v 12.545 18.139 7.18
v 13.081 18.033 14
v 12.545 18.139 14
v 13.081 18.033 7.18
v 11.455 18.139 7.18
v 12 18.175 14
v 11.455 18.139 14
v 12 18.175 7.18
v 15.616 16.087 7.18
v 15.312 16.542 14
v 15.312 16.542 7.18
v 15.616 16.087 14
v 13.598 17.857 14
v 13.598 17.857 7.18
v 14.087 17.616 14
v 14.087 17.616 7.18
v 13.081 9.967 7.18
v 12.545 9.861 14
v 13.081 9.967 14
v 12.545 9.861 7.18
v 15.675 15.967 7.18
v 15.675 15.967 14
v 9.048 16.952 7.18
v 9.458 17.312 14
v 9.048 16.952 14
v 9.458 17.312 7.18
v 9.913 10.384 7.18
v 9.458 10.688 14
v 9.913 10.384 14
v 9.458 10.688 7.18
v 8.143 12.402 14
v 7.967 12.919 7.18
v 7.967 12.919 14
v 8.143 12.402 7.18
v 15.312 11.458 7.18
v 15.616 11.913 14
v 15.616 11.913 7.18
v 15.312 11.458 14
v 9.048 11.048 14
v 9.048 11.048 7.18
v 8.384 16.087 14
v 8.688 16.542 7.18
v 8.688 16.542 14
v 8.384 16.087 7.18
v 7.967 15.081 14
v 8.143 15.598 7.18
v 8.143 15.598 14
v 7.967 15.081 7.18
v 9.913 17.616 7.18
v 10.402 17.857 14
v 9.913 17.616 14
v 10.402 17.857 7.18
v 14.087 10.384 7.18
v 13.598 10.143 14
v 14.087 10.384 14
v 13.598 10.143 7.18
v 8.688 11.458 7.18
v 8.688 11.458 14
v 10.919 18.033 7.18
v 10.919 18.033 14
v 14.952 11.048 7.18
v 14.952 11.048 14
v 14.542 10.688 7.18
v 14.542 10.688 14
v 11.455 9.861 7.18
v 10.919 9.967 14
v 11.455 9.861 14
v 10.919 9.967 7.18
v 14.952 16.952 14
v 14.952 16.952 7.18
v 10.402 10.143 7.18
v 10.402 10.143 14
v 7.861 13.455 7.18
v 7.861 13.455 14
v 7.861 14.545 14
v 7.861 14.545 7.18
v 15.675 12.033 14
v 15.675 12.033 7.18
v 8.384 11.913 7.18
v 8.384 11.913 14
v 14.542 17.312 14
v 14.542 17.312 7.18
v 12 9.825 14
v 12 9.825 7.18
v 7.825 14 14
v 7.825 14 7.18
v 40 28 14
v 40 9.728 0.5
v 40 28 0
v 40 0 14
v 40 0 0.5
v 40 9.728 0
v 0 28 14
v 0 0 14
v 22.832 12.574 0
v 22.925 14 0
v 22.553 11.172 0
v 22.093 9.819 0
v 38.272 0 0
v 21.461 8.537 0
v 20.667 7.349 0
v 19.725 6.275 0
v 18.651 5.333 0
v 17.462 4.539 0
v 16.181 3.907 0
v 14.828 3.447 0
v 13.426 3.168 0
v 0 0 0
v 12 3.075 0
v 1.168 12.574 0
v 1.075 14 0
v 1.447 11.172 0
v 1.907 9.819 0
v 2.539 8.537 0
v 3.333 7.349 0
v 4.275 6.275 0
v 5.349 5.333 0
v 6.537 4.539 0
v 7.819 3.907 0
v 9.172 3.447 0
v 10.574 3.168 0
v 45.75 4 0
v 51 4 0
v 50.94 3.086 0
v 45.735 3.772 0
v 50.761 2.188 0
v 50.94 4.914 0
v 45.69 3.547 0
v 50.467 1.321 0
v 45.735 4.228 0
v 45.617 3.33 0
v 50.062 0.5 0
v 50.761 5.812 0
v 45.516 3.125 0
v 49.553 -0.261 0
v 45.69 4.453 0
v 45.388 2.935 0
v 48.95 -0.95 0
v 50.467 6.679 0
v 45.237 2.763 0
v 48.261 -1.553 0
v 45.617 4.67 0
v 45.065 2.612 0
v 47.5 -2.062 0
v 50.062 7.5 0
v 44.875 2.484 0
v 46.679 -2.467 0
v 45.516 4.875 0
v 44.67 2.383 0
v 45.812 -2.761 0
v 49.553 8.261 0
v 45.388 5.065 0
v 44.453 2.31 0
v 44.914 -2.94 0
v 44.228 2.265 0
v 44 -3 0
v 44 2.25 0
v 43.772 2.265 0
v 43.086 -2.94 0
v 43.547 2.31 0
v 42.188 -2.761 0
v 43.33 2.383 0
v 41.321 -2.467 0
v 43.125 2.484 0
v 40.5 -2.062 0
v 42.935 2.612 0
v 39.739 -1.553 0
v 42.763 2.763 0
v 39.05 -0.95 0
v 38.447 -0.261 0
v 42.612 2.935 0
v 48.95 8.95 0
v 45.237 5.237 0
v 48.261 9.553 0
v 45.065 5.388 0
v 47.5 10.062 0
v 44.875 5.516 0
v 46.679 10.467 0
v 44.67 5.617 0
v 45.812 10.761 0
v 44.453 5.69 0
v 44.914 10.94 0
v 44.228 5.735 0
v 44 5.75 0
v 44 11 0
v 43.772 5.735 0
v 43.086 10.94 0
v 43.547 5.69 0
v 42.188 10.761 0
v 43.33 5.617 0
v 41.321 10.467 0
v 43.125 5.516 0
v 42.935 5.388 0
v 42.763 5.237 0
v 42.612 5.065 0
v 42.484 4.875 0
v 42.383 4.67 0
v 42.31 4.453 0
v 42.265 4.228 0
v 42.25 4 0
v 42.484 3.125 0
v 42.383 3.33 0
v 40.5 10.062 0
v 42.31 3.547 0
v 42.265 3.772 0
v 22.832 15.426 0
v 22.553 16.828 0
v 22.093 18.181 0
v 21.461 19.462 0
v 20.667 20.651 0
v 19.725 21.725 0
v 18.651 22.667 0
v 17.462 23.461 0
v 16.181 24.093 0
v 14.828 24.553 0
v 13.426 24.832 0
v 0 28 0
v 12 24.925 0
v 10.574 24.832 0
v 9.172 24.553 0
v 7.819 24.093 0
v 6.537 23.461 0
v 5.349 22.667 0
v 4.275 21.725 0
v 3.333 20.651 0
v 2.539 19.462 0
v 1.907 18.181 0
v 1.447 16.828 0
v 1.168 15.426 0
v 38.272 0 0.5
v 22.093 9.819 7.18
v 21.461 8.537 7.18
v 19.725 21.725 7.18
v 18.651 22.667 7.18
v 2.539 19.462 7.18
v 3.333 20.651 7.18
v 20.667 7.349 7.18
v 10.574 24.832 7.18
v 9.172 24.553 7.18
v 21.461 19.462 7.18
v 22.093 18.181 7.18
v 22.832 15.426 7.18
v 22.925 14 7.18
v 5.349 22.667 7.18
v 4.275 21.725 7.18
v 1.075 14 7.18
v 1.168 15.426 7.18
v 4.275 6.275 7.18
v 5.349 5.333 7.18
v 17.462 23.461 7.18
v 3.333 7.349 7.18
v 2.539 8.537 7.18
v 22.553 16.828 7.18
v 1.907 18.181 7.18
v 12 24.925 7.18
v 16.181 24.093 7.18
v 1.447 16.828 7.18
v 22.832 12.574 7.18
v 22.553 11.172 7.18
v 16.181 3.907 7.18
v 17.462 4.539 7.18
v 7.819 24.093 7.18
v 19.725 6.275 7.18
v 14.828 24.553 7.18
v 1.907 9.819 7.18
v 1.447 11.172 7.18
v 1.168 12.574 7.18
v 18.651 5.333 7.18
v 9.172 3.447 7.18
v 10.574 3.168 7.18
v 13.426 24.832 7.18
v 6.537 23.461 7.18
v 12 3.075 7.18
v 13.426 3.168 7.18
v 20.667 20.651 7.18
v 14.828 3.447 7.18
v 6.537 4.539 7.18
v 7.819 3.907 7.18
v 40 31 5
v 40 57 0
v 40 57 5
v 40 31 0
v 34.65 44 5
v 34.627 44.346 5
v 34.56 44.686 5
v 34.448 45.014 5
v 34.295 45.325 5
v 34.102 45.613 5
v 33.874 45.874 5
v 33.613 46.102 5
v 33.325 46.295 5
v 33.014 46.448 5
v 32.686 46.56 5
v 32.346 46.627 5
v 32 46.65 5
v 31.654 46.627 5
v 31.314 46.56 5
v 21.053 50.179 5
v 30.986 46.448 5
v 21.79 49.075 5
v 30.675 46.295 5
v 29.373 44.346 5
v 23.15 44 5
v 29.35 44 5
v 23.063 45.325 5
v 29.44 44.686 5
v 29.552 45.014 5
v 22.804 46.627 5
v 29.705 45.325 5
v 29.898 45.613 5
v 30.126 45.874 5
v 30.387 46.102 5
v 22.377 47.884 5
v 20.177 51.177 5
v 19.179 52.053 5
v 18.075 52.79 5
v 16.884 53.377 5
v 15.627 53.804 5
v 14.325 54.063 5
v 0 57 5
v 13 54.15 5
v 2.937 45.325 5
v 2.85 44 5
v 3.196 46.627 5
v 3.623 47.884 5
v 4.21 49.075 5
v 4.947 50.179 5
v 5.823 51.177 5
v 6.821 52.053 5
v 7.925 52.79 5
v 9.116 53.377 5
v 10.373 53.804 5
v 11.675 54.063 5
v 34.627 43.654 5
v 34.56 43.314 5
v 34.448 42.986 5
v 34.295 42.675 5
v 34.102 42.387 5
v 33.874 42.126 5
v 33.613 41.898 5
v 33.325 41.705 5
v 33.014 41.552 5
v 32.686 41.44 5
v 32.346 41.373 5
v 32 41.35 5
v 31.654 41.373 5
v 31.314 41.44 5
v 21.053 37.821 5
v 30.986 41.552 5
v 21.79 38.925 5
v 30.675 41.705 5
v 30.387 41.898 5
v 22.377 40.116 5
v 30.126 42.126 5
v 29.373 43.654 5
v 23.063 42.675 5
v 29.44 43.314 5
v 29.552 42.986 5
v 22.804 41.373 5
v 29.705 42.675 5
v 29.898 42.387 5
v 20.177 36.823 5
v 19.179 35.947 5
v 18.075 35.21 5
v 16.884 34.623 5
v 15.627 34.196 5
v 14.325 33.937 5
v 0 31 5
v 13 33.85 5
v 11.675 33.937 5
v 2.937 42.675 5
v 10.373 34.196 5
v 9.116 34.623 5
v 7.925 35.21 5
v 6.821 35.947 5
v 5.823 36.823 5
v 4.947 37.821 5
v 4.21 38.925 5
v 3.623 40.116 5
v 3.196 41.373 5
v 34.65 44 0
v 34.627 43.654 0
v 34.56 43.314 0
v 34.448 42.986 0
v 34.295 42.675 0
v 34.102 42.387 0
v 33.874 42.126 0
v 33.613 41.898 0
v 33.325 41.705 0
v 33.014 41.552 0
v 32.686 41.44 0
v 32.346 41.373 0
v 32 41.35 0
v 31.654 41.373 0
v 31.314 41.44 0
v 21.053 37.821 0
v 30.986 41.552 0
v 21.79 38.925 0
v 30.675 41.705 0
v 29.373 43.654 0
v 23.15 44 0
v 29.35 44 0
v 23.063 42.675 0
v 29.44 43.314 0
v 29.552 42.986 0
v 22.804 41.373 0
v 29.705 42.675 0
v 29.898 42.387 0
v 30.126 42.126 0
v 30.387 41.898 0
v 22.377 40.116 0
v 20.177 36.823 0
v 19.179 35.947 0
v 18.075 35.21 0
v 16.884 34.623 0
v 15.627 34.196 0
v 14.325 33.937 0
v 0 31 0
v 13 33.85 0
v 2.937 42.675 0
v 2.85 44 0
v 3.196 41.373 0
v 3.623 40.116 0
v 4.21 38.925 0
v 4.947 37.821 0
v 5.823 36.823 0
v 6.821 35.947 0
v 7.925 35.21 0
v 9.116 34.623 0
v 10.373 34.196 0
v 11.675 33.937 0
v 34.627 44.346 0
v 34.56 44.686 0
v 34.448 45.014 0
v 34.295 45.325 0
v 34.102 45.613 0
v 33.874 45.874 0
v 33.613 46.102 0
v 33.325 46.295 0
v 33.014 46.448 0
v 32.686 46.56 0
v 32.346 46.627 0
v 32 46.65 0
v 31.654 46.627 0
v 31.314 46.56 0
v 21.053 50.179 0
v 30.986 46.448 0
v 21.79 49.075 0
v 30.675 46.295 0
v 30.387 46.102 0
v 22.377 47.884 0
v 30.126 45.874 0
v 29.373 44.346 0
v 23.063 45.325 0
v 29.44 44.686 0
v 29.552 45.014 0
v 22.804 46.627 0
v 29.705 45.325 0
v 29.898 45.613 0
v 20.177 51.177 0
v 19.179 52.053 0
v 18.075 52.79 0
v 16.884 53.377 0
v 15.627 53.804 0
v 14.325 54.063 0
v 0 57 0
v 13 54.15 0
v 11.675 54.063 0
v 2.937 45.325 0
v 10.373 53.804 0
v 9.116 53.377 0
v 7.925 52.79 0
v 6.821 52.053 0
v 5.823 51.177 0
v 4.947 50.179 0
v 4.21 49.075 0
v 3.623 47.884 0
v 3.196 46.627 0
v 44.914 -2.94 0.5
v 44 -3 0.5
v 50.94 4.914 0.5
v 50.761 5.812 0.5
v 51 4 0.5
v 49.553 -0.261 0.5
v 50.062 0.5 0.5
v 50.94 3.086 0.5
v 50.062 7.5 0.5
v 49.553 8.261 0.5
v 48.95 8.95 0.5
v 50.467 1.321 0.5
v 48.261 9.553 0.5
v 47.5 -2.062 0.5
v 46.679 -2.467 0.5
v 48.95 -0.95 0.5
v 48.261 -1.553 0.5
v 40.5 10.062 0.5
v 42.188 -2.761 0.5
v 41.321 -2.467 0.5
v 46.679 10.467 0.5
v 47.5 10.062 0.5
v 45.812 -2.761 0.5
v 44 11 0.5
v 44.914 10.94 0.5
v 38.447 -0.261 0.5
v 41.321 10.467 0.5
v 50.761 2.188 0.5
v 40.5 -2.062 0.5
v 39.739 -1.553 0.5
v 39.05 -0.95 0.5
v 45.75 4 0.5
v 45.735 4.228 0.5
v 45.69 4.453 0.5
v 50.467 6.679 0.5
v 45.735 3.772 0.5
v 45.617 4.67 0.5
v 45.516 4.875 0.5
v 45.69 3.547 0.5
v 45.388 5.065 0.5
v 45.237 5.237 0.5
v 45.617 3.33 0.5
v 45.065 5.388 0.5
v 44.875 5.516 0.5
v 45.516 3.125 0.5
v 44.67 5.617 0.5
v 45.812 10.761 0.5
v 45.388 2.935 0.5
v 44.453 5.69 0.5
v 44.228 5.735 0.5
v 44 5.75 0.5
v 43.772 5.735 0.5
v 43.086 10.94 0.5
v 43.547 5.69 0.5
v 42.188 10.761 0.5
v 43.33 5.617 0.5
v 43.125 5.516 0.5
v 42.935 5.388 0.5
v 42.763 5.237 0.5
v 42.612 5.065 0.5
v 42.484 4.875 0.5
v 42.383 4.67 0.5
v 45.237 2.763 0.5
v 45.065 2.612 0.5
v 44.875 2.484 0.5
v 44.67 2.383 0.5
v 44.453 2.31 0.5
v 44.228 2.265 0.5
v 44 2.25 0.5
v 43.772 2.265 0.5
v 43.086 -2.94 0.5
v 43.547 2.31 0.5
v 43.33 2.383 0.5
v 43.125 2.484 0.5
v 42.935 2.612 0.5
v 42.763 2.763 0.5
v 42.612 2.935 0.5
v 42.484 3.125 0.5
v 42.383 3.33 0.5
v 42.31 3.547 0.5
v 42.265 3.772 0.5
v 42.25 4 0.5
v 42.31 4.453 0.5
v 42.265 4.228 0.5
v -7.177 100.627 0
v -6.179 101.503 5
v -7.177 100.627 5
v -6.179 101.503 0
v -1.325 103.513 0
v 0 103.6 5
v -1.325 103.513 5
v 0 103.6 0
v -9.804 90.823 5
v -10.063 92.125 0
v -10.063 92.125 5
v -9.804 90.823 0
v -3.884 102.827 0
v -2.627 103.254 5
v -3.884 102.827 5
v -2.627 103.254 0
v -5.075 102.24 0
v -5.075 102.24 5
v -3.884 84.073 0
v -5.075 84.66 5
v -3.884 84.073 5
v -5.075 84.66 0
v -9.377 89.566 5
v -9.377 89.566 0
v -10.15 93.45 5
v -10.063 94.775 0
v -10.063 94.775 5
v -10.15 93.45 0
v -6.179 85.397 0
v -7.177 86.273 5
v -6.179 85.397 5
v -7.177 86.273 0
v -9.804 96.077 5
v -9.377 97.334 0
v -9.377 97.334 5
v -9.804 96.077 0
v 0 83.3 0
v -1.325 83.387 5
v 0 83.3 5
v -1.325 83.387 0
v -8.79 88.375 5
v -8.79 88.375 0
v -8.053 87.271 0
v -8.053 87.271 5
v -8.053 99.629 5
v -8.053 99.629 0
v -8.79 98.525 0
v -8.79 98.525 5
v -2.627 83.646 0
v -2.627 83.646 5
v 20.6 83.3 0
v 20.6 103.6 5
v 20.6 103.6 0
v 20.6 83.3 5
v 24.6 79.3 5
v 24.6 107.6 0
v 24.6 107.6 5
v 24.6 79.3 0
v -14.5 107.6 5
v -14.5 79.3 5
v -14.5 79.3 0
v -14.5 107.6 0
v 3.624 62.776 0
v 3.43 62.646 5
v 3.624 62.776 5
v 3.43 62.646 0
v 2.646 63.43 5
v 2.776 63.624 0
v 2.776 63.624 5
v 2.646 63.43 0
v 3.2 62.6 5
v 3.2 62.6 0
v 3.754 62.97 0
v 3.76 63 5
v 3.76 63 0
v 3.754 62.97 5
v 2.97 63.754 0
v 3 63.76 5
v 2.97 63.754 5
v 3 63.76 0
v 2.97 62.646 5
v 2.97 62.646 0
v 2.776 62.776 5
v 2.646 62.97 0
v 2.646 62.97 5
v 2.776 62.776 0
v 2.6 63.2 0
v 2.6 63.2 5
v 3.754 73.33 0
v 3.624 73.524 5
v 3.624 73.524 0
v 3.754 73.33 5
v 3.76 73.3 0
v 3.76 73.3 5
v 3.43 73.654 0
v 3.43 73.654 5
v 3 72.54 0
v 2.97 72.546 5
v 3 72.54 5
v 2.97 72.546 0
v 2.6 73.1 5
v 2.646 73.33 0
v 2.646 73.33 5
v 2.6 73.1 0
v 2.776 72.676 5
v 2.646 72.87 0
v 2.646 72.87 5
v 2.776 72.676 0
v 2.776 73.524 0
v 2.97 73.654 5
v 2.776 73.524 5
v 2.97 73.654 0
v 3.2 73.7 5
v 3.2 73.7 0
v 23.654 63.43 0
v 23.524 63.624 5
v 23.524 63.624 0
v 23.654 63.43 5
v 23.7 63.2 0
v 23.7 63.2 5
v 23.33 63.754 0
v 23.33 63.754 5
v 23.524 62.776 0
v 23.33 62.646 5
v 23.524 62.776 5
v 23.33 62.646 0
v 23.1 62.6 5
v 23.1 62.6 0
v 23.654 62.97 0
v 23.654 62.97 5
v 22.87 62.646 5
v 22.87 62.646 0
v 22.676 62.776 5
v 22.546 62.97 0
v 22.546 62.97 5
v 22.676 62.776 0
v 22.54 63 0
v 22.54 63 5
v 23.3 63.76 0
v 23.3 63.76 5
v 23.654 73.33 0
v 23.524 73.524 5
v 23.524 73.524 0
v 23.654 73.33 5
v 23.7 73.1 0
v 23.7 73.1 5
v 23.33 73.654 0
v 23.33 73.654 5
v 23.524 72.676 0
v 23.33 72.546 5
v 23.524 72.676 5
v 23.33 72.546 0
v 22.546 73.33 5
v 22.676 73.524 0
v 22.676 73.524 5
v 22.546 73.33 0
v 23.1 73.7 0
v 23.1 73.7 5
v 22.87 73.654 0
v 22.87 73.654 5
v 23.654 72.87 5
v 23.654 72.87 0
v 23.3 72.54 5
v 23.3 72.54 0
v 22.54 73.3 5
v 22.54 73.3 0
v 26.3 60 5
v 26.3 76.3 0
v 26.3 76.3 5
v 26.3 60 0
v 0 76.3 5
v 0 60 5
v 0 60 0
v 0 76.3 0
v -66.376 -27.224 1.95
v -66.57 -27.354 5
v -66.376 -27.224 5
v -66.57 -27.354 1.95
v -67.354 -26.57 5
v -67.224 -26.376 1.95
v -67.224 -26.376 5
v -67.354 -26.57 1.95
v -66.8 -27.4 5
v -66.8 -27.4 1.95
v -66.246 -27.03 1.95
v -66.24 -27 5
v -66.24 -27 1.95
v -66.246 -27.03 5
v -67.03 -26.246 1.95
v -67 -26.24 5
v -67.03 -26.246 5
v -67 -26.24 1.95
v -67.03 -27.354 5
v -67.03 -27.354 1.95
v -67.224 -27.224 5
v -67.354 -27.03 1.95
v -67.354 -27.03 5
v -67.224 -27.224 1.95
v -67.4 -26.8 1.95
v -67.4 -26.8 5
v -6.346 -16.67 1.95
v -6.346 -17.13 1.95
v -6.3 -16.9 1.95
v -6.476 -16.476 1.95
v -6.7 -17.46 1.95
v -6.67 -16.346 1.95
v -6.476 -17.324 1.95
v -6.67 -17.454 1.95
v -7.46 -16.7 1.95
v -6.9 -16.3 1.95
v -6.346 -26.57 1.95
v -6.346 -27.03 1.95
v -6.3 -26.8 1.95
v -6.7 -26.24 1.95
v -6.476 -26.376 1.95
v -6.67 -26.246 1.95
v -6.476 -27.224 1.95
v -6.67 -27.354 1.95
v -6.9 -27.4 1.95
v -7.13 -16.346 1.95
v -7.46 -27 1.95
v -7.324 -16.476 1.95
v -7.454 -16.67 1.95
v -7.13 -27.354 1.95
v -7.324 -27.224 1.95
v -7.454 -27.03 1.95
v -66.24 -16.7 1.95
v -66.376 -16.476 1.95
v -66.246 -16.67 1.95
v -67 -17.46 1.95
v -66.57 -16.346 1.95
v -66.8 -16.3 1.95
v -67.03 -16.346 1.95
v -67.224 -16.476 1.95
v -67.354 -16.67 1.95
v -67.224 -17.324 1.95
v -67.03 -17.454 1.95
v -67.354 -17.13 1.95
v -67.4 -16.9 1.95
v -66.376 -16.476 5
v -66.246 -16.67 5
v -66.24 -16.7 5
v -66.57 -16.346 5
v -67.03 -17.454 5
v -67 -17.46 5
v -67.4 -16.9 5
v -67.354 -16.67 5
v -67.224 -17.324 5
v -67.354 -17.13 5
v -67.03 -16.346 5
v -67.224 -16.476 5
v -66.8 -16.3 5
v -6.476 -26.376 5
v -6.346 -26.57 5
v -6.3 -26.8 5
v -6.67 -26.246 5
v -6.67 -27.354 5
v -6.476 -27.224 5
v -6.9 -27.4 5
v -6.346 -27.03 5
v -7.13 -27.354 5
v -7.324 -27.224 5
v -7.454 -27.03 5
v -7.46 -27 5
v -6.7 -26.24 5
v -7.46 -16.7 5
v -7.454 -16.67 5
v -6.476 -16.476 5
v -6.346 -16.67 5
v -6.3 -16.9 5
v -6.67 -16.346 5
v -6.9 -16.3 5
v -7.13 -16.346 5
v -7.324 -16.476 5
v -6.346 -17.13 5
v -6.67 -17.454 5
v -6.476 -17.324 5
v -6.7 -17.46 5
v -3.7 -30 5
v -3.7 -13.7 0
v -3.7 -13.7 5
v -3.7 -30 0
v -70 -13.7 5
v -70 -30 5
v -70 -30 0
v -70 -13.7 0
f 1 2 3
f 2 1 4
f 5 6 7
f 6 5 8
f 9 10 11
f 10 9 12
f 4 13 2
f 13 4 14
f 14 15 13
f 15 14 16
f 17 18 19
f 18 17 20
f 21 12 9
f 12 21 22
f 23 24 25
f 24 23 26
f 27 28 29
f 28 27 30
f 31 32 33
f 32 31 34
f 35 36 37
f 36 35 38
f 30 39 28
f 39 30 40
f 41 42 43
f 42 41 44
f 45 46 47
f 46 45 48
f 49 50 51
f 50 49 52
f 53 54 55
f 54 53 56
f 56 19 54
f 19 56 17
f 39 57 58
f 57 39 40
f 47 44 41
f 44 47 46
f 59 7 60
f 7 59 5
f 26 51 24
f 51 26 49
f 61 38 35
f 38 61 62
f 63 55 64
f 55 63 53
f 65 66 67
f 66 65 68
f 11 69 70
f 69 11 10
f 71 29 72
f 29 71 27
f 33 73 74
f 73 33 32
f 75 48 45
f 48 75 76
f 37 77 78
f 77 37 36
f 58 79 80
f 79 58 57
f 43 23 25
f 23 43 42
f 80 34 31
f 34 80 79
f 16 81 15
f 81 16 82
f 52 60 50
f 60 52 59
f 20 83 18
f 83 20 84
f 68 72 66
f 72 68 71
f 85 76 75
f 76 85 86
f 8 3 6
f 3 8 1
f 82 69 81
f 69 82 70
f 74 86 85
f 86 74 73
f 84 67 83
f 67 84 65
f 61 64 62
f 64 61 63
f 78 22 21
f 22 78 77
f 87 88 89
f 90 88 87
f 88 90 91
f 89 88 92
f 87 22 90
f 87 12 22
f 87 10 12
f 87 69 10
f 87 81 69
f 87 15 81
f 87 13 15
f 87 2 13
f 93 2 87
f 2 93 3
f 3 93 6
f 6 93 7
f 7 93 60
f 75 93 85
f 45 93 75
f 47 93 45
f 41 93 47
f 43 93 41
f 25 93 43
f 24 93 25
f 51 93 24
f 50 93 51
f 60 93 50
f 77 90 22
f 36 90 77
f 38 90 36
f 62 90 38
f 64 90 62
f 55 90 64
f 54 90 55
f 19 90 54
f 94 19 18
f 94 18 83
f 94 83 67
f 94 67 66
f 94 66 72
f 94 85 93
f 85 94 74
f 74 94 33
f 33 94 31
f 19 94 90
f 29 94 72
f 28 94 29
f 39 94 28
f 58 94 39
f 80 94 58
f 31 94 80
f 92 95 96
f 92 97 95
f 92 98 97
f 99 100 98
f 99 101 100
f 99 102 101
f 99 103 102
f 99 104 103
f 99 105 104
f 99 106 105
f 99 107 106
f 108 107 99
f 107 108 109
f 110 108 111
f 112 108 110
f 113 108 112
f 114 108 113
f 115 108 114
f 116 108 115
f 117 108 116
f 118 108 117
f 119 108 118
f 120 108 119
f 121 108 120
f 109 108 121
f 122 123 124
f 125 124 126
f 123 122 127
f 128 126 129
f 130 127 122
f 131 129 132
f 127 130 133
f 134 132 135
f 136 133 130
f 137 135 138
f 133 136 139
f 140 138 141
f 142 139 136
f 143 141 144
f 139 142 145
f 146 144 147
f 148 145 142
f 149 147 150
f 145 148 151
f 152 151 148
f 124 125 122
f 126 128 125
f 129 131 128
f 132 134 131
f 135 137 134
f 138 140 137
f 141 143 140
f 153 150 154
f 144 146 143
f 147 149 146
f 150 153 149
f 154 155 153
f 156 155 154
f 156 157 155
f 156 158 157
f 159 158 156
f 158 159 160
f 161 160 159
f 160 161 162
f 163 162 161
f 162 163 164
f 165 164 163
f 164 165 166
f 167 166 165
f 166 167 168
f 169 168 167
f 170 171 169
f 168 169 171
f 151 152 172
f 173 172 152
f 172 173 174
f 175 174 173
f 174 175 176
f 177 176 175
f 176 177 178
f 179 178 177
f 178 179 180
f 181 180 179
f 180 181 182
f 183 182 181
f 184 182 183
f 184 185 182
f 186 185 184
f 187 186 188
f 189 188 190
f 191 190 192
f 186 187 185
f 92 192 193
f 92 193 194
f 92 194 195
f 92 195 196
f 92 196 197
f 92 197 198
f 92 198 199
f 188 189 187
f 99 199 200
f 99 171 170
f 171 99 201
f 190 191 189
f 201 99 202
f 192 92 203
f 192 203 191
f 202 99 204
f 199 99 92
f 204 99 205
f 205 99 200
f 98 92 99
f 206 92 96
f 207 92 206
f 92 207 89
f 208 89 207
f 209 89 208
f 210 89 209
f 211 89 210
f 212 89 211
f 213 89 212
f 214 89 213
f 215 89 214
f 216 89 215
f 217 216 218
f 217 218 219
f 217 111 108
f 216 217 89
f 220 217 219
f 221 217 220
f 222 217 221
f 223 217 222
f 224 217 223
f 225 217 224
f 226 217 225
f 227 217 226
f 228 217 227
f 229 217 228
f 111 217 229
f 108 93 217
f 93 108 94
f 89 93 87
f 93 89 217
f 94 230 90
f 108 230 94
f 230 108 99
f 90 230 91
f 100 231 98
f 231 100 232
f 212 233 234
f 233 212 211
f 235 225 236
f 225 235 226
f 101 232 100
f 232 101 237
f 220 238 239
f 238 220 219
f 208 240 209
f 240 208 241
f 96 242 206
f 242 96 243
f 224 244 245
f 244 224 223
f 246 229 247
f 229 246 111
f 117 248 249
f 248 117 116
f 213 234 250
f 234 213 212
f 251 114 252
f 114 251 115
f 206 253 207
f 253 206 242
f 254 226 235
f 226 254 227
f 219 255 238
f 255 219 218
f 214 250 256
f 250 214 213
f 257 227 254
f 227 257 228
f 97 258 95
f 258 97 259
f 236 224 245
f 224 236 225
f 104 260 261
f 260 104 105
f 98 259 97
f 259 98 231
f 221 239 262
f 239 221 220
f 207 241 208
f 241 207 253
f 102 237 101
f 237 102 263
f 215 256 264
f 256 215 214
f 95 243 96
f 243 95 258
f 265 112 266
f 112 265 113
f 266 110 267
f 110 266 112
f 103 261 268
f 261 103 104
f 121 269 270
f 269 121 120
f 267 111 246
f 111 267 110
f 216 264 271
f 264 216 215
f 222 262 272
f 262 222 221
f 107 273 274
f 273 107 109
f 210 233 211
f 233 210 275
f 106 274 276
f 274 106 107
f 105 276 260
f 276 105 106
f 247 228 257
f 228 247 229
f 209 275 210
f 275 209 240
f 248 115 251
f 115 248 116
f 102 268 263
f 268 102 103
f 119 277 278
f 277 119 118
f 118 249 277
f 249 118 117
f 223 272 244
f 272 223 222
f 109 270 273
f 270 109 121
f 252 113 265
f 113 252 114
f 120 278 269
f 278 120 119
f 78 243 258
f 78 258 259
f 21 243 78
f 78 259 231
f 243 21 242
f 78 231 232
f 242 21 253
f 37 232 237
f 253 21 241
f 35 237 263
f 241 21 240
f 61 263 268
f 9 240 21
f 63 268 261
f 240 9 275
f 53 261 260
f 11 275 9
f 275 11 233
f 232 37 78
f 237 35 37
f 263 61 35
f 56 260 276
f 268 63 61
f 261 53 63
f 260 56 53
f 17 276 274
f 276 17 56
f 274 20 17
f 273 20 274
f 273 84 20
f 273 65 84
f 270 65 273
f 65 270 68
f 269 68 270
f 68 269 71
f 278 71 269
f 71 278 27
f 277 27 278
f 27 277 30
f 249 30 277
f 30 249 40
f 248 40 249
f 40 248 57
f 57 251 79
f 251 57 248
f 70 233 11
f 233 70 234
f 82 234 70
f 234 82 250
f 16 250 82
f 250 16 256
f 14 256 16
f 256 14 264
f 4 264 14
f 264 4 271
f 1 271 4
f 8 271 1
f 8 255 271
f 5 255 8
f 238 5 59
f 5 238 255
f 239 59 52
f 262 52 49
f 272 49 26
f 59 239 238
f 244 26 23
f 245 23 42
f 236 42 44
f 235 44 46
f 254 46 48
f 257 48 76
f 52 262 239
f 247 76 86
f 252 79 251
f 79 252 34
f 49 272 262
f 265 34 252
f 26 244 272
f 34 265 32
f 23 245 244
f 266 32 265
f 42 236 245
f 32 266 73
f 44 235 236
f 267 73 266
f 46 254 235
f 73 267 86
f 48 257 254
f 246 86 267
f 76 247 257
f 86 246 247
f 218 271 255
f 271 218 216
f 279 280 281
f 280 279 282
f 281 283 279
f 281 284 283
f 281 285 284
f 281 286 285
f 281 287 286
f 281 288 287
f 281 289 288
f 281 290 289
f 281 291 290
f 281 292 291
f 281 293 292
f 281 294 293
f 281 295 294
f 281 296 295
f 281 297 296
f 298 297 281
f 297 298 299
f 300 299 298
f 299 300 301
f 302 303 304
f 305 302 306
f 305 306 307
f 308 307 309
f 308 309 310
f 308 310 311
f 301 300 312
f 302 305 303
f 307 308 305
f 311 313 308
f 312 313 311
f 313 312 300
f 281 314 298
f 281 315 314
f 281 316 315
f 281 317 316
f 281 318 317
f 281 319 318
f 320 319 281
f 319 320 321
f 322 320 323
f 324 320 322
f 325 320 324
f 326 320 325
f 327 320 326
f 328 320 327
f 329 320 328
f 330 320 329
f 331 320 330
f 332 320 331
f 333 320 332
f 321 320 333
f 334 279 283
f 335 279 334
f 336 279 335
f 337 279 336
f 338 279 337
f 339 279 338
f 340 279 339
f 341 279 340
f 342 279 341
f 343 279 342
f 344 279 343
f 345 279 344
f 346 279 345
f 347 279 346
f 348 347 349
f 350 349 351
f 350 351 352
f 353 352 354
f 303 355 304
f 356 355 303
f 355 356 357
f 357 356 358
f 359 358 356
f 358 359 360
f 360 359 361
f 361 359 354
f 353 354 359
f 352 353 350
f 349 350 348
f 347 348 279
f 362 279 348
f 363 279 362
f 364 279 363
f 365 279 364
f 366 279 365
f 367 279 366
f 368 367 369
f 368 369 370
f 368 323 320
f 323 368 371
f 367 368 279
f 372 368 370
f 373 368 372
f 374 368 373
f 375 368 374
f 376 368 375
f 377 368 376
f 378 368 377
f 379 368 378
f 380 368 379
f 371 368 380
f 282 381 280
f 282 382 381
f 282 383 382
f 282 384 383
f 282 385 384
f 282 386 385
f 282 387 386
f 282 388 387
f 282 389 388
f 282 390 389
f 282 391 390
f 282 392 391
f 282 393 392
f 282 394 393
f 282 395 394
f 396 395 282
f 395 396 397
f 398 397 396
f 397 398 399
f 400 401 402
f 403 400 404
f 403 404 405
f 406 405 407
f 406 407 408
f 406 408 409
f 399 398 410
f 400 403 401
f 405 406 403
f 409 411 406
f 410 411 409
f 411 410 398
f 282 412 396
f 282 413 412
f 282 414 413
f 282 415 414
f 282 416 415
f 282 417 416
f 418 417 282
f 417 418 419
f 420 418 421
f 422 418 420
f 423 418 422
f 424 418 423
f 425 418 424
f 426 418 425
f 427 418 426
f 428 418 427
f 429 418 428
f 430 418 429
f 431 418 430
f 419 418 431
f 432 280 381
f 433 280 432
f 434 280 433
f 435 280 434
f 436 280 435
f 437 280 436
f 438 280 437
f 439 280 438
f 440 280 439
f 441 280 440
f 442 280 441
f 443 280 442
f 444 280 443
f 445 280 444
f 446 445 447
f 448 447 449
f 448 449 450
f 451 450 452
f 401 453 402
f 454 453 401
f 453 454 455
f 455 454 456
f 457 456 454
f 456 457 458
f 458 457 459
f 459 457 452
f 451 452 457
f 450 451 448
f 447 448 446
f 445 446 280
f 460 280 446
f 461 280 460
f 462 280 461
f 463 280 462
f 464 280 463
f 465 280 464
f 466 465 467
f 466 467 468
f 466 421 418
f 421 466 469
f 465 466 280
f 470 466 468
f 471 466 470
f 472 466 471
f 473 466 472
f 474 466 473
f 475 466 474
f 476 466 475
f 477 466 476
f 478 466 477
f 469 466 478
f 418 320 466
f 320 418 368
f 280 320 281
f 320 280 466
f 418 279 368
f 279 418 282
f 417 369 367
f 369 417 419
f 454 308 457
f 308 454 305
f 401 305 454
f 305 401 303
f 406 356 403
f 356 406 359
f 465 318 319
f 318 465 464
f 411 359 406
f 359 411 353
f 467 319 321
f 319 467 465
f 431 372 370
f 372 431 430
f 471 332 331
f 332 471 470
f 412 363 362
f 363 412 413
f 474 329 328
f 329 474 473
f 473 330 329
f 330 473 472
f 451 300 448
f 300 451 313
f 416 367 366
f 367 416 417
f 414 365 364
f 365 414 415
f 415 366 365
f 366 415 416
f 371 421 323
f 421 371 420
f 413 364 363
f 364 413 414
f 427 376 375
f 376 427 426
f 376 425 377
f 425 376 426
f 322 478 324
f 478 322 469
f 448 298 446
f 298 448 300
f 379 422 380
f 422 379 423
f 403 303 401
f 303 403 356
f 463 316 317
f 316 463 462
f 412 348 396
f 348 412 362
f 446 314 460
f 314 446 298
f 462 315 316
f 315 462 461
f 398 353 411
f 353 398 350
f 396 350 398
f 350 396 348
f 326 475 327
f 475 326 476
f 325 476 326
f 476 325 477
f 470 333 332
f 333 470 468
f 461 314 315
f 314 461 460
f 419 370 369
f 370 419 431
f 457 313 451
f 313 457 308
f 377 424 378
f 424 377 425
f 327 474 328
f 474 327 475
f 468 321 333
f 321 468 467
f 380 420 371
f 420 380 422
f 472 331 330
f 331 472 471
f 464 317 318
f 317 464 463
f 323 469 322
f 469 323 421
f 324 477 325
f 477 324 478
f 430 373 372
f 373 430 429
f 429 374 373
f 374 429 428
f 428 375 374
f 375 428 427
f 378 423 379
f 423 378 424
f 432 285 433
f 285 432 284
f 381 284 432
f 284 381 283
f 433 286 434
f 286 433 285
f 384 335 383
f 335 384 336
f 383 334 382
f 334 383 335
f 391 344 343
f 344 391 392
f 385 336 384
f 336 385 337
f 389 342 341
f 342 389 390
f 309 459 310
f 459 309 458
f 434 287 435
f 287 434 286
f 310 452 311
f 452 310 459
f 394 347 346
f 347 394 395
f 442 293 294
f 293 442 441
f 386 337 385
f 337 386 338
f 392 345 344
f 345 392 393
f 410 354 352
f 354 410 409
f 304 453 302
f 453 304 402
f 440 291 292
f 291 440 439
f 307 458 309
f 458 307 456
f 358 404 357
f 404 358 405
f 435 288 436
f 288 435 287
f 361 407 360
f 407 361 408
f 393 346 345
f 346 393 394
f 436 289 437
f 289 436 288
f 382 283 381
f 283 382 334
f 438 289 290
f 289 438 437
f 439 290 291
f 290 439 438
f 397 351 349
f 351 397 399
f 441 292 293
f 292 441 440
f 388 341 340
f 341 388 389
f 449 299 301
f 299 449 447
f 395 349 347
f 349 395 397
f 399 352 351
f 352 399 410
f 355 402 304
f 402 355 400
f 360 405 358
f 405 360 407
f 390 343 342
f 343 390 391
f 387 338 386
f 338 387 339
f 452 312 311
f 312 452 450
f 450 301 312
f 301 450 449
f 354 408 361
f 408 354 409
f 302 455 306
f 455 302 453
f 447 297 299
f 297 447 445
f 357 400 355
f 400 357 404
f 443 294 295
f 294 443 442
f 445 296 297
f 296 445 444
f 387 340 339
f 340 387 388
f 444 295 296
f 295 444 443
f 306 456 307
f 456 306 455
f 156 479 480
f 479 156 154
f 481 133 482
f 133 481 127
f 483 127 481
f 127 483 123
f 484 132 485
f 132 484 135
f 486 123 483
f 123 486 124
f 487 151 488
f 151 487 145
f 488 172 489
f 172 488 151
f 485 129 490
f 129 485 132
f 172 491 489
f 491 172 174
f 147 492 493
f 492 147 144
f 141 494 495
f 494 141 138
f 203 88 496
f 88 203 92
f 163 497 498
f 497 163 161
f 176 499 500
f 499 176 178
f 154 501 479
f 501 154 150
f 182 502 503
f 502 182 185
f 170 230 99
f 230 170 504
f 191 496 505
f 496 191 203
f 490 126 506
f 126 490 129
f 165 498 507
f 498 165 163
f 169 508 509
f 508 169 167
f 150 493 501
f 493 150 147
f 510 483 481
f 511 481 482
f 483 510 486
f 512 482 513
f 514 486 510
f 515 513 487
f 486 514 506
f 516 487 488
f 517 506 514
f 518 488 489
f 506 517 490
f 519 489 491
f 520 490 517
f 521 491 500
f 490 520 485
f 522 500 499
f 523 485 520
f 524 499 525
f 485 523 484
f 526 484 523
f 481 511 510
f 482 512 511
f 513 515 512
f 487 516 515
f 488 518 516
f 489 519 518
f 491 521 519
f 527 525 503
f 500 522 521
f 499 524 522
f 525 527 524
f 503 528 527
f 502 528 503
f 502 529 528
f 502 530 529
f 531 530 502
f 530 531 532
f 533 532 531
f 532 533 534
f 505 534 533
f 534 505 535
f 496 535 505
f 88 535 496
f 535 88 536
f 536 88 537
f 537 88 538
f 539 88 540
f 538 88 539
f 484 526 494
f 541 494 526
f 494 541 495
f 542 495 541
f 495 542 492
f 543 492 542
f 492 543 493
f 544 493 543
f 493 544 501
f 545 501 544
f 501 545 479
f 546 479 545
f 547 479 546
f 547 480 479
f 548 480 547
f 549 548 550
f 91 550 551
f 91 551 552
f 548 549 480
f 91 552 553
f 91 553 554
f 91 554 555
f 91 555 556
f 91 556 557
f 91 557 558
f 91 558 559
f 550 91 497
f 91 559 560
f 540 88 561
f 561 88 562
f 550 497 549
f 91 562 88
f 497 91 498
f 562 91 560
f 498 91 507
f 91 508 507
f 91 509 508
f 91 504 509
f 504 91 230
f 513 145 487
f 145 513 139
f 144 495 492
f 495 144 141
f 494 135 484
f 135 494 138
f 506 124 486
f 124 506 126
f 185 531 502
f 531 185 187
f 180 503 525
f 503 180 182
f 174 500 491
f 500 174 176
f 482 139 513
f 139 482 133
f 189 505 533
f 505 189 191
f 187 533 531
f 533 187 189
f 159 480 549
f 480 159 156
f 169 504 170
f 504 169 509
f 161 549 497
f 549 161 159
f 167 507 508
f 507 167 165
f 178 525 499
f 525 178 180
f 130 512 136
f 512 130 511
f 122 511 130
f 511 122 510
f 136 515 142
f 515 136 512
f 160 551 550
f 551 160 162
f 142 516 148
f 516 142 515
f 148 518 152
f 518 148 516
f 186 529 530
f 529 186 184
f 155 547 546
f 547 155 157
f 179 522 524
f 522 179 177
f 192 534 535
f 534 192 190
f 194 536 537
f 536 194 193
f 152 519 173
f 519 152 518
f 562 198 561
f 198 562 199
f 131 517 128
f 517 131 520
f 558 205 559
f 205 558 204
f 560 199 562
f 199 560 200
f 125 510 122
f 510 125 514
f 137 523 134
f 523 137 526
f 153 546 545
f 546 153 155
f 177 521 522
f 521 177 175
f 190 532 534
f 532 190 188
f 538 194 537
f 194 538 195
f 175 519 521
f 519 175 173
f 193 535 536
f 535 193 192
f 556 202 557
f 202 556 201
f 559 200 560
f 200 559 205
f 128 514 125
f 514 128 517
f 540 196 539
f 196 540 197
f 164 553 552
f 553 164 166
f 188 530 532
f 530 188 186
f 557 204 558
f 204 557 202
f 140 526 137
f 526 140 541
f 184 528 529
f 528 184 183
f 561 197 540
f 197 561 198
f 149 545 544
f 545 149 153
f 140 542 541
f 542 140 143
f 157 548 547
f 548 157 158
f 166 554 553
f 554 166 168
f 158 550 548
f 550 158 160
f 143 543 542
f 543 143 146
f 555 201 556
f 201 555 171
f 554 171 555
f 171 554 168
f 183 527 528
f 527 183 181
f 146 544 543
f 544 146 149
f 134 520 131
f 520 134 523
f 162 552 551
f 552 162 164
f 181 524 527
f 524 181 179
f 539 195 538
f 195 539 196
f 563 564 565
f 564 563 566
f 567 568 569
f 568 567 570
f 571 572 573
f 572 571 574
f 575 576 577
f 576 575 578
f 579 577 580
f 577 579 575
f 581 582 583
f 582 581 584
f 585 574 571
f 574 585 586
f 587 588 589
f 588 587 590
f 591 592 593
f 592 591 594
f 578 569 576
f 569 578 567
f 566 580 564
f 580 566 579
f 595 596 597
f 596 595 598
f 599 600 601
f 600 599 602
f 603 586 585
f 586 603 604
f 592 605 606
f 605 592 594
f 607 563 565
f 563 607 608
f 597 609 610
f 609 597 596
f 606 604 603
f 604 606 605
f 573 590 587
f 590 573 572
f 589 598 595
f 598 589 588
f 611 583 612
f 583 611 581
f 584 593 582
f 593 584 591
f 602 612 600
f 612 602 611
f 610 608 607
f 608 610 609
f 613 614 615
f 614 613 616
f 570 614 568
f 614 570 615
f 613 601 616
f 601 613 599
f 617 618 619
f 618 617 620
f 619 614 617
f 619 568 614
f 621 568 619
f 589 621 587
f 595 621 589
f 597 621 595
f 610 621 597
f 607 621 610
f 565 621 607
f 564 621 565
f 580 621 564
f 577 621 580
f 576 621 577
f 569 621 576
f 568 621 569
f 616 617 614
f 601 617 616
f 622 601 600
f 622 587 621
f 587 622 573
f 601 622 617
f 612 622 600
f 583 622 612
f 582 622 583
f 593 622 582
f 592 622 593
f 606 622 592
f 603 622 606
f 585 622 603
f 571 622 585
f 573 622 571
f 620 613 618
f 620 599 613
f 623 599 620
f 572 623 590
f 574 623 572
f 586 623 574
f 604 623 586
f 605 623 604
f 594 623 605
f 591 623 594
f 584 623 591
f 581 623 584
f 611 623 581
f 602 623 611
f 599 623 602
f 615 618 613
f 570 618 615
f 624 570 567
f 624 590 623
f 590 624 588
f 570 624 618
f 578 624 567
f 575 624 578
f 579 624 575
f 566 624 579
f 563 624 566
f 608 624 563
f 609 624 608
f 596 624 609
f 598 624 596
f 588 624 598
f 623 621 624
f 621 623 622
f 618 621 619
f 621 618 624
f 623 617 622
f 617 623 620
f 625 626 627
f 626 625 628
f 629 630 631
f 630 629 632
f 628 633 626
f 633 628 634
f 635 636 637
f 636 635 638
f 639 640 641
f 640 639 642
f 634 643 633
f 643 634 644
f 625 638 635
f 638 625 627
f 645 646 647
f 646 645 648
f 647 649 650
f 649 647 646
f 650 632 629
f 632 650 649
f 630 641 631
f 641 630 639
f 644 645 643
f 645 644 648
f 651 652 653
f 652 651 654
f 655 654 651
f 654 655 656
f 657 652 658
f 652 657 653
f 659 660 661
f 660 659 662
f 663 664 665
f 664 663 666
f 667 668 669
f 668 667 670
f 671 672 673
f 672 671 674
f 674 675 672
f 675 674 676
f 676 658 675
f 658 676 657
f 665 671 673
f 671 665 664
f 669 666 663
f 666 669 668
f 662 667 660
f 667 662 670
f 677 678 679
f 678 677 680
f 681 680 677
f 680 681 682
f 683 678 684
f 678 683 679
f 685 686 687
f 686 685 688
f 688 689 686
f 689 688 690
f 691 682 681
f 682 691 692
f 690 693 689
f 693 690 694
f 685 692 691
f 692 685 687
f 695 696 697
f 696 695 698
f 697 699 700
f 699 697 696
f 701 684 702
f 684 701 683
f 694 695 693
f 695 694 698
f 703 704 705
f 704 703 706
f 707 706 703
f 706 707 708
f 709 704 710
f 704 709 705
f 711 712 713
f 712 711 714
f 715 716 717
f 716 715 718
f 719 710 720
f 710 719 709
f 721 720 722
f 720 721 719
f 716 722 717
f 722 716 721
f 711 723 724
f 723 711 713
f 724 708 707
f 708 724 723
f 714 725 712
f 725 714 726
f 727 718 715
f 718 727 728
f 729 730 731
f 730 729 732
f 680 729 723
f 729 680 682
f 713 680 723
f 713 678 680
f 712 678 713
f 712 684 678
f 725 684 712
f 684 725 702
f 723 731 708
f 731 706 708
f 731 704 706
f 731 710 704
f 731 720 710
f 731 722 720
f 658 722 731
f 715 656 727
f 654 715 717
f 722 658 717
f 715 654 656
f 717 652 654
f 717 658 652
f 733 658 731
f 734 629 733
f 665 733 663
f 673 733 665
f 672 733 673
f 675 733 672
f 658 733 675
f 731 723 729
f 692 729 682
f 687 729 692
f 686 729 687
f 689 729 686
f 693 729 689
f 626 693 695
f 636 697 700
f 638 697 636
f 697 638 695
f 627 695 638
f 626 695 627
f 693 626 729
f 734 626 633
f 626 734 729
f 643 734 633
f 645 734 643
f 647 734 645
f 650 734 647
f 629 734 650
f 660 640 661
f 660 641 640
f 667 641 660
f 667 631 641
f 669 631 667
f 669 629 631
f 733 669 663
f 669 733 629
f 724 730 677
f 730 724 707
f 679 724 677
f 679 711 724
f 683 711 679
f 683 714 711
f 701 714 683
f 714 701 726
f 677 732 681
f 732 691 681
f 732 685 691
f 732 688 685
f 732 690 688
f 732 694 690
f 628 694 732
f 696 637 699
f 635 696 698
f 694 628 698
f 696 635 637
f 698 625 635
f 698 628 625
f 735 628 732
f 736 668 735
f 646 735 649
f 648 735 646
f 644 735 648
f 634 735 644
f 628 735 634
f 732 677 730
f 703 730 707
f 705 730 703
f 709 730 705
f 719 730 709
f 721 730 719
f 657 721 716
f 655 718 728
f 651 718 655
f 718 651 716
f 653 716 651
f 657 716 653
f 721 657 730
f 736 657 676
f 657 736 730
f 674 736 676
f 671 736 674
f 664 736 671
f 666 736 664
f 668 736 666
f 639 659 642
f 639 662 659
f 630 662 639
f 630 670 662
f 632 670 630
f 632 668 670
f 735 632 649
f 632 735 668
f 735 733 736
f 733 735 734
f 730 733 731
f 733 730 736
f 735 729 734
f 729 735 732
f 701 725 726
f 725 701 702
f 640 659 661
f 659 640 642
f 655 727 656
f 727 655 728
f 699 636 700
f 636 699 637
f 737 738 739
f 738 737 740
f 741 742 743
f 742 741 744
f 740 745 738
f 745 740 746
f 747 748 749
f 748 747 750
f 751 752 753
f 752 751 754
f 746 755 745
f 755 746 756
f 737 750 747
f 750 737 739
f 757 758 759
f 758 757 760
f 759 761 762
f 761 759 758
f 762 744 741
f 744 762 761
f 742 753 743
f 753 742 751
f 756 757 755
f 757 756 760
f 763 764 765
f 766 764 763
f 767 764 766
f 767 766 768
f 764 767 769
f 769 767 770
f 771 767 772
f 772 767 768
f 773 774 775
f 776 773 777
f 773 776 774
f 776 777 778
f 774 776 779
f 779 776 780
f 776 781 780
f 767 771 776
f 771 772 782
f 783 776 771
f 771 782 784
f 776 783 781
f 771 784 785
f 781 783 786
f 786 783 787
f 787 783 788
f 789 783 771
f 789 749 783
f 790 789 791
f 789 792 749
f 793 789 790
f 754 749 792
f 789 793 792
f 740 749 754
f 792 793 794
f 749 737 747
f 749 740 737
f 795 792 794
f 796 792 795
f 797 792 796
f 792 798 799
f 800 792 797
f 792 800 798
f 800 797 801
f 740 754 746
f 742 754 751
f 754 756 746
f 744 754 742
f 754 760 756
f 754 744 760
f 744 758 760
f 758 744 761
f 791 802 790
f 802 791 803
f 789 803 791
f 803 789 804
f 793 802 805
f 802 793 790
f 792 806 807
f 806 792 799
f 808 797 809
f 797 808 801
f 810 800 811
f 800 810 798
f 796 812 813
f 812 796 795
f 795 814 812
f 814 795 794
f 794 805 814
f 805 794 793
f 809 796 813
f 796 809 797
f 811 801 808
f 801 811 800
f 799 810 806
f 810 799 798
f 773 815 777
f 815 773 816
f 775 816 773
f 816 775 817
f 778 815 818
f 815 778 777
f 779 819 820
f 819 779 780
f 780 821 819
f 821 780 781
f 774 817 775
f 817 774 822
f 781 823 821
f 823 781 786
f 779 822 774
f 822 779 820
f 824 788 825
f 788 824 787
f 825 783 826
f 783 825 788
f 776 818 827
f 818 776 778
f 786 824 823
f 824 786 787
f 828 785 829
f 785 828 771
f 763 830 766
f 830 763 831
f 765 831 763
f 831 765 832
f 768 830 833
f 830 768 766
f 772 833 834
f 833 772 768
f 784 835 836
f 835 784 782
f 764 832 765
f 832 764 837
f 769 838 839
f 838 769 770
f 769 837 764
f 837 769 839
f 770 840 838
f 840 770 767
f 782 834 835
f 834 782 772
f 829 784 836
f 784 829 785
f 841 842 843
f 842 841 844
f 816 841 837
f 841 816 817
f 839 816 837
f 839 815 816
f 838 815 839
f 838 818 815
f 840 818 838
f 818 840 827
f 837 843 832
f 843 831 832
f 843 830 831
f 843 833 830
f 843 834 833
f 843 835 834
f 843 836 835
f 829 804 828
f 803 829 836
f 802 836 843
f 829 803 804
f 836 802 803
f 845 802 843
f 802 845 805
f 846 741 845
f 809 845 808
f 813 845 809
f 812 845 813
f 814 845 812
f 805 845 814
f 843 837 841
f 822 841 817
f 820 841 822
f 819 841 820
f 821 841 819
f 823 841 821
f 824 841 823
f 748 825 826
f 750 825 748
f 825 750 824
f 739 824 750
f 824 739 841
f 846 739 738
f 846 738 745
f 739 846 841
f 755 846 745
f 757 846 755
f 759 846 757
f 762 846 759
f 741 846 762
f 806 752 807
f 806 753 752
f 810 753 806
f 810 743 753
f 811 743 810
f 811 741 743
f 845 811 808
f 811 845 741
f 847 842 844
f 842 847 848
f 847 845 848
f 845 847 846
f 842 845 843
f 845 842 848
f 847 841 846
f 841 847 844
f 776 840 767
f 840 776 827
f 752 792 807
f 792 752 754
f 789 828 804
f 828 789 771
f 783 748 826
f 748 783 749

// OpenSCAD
// Gen-DD — fit coupon: O20/O5 THROUGH pockets at carrier thickness (test on a steel offcut), 608 seat,
// D-flat bore, gap shim, and one bobbin-bay slice (bobbin footprint + bay_clear) to test former fit.
include <parameters.scad>;
$fn = 48;
// D-flat keyed bore: flat faces +X (angle 0 = magnet pocket 0 = index notch)
module dflat_bore(h) {
    intersection() {
        cylinder(d=shaft_bore, h=h);
        translate([-shaft_bore, -shaft_bore, 0]) cube([shaft_bore + dflat_x, 2*shaft_bore, h]);
    }
}
module sector_2d(r_in, r_out, ang) {
    polygon([
        for (a = [-ang/2 : ang/24 : ang/2]) [r_in*cos(a), r_in*sin(a)],
        for (a = [ang/2 : -ang/24 : -ang/2]) [r_out*cos(a), r_out*sin(a)]
    ]);
}
module footprint_2d() { offset(r=wall) sector_2d(coil_id_r, coil_od_r, span_deg); }
module hub_2d()       { offset(delta=-coil_core_inset) sector_2d(coil_id_r, coil_od_r, span_deg); }

block_w = 40; block_d = 28; block_h = 14;
difference() {
    cube([block_w, block_d, block_h]);
    translate([12, block_d/2, -0.02]) cylinder(d=bearing_d, h=bearing_h);
    translate([12, block_d/2, -0.1]) dflat_bore(block_h + 1);
}
translate([0, block_d + 3, 0]) difference() {
    cube([40, 26, carrier_thick]);
    translate([13, 13, -0.1]) cylinder(d=large_pocket_d, h=carrier_thick + 0.2);
    translate([32, 13, -0.1]) cylinder(d=small_pocket_d, h=carrier_thick + 0.2);
}
translate([block_w + 4, 4, 0])
    difference() {
        cylinder(d=spacer_pad_od, h=gap_spacer_h);
        translate([0, 0, -0.1]) cylinder(d=spacer_pad_id, h=gap_spacer_h + 0.2);
    }
// KEYHOLE pole pocket test (2026-10-18): O20 disc pocket + N42 20x10x5 block pocket merged (hull), as on the arcs.
// Drop a disc and a block in: they must push each other onto the two far walls and sit flat. Block pocket has corner reliefs.
translate([0, block_d + 3 + 26 + 3 + block_radial + block_pocket_clear + 6 + 3 + max(block_tangential, large_pocket_d) / 2 + 4, 0]) difference() {
    translate([-14.5, -(max(block_tangential, large_pocket_d) / 2 + 4), 0]) cube([14.5 + abs(block_R_list[0] - R_large) + block_radial / 2 + 4, max(block_tangential, large_pocket_d) + 8, carrier_thick]);
    translate([0, 0, -0.1]) {
        translate([disc_pocket_shift * sign(block_R_list[0] - R_large), 0, 0]) cylinder(d=large_pocket_d, h=carrier_thick + 0.2);
        translate([disc_pocket_shift * sign(block_R_list[0] - R_large), -(block_tangential + block_pocket_clear)/2, 0])
            cube([abs(block_R_list[0] - R_large) - abs(block_pocket_shift) + (block_radial + block_pocket_clear)/2 - disc_pocket_shift * sign(block_R_list[0] - R_large), block_tangential + block_pocket_clear, carrier_thick + 0.2]);
    }
}
// N42 20x10x5 BLOCK through-pocket test (block + block_pocket_clear, 1.2 mm corner reliefs), 2026-10-16
translate([0, block_d + 3 + 26 + 3, 0]) difference() {
    cube([block_tangential + block_pocket_clear + 6, block_radial + block_pocket_clear + 6, carrier_thick]);
    translate([3, 3, -0.1]) cube([block_tangential + block_pocket_clear, block_radial + block_pocket_clear, carrier_thick + 0.2]);
    for (x = [3.2, 3 + block_tangential + block_pocket_clear - 0.2], y = [3.2, 3 + block_radial + block_pocket_clear - 0.2])
        translate([x, y, -0.1]) cylinder(d=1.2, h=carrier_thick + 0.2, $fn=16);
}
// N52 60x10x3 BAR blind-pocket test (2026-10-21): bar + 0.3 mm, depth block2_pocket_depth: the bar face must sit flush with the top.
translate([-70, -30, 0]) difference() {
    cube([block2_tangential + block2_pocket_clear + 6, block2_radial + block2_pocket_clear + 6, carrier_thick]);
    translate([3, 3, carrier_thick - block2_pocket_depth]) cube([block2_tangential + block2_pocket_clear, block2_radial + block2_pocket_clear, carrier_thick]);
    for (x = [3.2, 3 + block2_tangential + block2_pocket_clear - 0.2], y = [3.2, 3 + block2_radial + block2_pocket_clear - 0.2])
        translate([x, y, carrier_thick - block2_pocket_depth]) cylinder(d=1.2, h=carrier_thick, $fn=16);
}
